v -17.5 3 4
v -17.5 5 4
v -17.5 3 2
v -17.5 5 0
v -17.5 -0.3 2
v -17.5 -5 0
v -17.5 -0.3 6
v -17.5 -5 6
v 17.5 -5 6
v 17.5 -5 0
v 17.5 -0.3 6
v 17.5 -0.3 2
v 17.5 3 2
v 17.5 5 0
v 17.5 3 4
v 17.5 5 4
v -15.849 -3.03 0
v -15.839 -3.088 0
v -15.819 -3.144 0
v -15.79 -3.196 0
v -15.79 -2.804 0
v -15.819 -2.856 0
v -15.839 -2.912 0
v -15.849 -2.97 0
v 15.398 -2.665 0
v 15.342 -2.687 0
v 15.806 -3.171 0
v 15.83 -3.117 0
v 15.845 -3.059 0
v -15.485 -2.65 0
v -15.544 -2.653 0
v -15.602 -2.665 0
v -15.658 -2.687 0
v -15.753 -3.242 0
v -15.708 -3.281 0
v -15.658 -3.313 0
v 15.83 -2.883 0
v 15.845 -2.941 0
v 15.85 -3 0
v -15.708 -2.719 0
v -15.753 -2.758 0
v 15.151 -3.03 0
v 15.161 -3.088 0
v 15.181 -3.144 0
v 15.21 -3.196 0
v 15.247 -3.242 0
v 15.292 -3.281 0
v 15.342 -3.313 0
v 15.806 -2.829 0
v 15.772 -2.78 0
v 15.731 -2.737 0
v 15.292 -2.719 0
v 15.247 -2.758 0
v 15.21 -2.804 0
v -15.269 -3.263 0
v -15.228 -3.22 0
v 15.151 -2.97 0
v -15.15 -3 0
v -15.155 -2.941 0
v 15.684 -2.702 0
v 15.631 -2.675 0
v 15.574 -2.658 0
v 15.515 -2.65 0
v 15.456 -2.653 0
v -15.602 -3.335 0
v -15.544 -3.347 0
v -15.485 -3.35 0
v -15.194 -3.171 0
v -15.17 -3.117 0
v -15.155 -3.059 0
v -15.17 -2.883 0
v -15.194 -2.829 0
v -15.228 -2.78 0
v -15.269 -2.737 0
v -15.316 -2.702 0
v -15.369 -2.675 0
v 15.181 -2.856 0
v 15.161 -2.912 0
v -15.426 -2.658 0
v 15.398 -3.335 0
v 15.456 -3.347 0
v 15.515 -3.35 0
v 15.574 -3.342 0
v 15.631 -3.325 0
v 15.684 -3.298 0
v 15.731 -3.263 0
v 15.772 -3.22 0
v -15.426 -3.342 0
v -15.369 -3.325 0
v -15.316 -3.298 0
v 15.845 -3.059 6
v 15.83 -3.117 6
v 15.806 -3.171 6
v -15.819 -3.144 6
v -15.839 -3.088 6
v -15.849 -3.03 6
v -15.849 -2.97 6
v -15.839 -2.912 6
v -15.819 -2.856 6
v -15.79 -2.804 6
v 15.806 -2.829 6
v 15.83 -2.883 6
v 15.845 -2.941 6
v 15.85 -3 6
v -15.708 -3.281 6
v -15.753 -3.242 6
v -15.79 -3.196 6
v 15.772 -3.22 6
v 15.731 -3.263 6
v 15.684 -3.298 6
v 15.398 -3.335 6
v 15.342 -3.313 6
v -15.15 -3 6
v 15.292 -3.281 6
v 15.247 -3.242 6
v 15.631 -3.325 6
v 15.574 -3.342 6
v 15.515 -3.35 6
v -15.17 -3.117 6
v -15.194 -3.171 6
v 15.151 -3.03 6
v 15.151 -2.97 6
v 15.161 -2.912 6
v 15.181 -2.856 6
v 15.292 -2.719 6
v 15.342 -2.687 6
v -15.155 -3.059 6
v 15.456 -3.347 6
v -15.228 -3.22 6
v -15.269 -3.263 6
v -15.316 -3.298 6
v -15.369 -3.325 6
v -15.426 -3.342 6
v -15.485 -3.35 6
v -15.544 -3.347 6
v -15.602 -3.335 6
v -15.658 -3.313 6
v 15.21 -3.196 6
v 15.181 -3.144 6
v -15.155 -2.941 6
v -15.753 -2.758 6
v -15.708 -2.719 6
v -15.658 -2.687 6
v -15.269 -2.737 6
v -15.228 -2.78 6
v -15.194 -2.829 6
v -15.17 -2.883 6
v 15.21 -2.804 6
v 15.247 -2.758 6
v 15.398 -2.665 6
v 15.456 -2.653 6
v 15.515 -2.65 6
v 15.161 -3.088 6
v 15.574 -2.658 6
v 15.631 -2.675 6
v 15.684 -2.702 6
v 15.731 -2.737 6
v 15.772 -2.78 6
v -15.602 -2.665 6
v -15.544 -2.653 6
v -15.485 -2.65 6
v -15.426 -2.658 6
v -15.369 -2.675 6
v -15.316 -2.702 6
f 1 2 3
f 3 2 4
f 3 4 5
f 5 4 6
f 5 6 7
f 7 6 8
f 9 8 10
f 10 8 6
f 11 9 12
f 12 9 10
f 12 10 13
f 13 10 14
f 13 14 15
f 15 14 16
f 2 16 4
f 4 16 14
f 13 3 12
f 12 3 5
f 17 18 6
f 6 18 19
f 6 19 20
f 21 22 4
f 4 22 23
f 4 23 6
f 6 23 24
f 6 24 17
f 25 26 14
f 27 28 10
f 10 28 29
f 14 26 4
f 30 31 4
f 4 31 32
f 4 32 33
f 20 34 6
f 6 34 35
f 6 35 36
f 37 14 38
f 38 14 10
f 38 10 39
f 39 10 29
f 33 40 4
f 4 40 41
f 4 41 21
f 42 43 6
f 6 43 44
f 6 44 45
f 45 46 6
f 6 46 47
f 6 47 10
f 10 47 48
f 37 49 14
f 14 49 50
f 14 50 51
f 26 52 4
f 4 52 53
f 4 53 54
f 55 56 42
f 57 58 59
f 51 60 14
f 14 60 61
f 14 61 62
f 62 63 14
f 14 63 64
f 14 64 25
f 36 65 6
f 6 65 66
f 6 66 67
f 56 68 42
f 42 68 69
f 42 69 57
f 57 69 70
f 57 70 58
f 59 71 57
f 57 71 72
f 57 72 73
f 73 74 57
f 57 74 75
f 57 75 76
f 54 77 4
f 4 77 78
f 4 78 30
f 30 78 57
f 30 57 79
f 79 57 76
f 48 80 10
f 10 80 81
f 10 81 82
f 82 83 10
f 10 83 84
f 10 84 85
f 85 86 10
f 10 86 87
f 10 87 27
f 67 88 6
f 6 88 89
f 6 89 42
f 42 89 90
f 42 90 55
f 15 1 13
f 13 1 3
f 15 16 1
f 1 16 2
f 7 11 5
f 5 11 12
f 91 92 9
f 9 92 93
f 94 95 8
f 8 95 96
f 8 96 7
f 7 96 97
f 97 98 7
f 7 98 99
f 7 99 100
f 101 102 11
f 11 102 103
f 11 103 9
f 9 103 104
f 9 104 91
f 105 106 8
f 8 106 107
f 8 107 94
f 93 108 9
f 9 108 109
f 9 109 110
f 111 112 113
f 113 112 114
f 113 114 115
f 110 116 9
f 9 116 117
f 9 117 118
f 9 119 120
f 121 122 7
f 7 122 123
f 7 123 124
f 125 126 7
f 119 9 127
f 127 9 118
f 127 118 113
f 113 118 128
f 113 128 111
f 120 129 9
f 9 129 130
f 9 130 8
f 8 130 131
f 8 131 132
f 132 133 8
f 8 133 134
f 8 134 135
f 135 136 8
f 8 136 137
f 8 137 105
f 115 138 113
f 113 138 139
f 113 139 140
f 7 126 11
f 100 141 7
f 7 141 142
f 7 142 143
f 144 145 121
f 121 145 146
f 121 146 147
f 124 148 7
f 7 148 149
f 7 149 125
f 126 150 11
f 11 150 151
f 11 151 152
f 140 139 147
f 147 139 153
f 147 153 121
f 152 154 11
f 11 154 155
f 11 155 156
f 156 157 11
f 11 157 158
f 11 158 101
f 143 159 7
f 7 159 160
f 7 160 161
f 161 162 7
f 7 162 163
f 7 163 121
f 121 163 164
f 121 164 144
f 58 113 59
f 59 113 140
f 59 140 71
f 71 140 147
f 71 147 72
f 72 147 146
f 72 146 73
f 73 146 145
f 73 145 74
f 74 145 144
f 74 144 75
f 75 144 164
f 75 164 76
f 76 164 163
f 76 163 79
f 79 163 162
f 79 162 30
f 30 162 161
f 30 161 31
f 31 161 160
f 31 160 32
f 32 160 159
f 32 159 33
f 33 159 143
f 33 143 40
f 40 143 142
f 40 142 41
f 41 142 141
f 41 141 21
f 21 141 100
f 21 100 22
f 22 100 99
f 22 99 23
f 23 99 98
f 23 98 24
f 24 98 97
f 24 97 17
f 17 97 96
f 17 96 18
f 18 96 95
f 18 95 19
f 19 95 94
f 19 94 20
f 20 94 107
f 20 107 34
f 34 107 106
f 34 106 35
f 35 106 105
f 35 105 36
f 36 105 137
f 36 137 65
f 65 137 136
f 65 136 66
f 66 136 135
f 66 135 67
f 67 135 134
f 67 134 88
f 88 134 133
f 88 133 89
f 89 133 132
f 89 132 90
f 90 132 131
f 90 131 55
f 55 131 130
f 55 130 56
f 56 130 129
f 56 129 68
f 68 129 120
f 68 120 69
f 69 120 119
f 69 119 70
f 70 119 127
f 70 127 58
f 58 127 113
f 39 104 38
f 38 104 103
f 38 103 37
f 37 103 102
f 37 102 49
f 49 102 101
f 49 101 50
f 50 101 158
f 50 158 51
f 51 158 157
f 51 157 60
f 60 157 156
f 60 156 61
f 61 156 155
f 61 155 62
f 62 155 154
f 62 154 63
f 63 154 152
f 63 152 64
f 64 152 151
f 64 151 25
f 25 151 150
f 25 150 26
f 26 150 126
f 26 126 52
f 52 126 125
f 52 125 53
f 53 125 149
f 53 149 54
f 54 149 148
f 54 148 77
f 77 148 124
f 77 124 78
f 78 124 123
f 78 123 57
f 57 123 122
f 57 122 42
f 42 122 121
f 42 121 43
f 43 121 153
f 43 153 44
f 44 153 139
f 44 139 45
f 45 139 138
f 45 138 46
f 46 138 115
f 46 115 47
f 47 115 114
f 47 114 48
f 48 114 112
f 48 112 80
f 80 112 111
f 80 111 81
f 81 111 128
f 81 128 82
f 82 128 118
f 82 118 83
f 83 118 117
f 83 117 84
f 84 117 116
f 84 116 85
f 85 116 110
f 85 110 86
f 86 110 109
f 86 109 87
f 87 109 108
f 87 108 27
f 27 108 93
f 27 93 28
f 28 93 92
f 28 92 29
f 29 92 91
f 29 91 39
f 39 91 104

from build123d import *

# Parameters (mm, degrees)
SKETCH_1_W          = 35
SKETCH_1_H          = 10
EXTRUDE_1_DEPTH     = 2
SKETCH_3_W          = 35
SKETCH_3_H          = 2
EXTRUDE_2_DEPTH     = 2
SKETCH_3_3_W        = 35
SKETCH_3_3_H        = 4.7
EXTRUDE_3_DEPTH     = 4
SKETCH_4_R          = 0.35
CUT_EXTRUDE_1_DEPTH = 20.163767897


with BuildPart() as part:
    # 草图1 → 凸台-拉伸1 (new body)
    with BuildSketch(Plane.XY):
        Rectangle(SKETCH_1_W, SKETCH_1_H)
    extrude(amount=EXTRUDE_1_DEPTH)

    # 草图3 → 凸台-拉伸2 (add)
    with BuildSketch(Plane.XY.offset(2)):
        with Locations((0, 4)):
            Rectangle(SKETCH_3_W, SKETCH_3_H)
    extrude(amount=EXTRUDE_2_DEPTH)

    # 草图3<3> → 凸台-拉伸3 (add)
    with BuildSketch(Plane.XY.offset(2)):
        with Locations((0, -2.65)):
            Rectangle(SKETCH_3_3_W, SKETCH_3_3_H)
    extrude(amount=EXTRUDE_3_DEPTH)

    # 草图4 → 切除-拉伸1 (cut, through all)
    with BuildSketch(Plane.XY.offset(6)):
        with Locations((15.5, -3)):
            Circle(SKETCH_4_R)
        with Locations((-15.5, -3)):
            Circle(SKETCH_4_R)
    extrude(amount=-CUT_EXTRUDE_1_DEPTH, mode=Mode.SUBTRACT)


solid = part.part
